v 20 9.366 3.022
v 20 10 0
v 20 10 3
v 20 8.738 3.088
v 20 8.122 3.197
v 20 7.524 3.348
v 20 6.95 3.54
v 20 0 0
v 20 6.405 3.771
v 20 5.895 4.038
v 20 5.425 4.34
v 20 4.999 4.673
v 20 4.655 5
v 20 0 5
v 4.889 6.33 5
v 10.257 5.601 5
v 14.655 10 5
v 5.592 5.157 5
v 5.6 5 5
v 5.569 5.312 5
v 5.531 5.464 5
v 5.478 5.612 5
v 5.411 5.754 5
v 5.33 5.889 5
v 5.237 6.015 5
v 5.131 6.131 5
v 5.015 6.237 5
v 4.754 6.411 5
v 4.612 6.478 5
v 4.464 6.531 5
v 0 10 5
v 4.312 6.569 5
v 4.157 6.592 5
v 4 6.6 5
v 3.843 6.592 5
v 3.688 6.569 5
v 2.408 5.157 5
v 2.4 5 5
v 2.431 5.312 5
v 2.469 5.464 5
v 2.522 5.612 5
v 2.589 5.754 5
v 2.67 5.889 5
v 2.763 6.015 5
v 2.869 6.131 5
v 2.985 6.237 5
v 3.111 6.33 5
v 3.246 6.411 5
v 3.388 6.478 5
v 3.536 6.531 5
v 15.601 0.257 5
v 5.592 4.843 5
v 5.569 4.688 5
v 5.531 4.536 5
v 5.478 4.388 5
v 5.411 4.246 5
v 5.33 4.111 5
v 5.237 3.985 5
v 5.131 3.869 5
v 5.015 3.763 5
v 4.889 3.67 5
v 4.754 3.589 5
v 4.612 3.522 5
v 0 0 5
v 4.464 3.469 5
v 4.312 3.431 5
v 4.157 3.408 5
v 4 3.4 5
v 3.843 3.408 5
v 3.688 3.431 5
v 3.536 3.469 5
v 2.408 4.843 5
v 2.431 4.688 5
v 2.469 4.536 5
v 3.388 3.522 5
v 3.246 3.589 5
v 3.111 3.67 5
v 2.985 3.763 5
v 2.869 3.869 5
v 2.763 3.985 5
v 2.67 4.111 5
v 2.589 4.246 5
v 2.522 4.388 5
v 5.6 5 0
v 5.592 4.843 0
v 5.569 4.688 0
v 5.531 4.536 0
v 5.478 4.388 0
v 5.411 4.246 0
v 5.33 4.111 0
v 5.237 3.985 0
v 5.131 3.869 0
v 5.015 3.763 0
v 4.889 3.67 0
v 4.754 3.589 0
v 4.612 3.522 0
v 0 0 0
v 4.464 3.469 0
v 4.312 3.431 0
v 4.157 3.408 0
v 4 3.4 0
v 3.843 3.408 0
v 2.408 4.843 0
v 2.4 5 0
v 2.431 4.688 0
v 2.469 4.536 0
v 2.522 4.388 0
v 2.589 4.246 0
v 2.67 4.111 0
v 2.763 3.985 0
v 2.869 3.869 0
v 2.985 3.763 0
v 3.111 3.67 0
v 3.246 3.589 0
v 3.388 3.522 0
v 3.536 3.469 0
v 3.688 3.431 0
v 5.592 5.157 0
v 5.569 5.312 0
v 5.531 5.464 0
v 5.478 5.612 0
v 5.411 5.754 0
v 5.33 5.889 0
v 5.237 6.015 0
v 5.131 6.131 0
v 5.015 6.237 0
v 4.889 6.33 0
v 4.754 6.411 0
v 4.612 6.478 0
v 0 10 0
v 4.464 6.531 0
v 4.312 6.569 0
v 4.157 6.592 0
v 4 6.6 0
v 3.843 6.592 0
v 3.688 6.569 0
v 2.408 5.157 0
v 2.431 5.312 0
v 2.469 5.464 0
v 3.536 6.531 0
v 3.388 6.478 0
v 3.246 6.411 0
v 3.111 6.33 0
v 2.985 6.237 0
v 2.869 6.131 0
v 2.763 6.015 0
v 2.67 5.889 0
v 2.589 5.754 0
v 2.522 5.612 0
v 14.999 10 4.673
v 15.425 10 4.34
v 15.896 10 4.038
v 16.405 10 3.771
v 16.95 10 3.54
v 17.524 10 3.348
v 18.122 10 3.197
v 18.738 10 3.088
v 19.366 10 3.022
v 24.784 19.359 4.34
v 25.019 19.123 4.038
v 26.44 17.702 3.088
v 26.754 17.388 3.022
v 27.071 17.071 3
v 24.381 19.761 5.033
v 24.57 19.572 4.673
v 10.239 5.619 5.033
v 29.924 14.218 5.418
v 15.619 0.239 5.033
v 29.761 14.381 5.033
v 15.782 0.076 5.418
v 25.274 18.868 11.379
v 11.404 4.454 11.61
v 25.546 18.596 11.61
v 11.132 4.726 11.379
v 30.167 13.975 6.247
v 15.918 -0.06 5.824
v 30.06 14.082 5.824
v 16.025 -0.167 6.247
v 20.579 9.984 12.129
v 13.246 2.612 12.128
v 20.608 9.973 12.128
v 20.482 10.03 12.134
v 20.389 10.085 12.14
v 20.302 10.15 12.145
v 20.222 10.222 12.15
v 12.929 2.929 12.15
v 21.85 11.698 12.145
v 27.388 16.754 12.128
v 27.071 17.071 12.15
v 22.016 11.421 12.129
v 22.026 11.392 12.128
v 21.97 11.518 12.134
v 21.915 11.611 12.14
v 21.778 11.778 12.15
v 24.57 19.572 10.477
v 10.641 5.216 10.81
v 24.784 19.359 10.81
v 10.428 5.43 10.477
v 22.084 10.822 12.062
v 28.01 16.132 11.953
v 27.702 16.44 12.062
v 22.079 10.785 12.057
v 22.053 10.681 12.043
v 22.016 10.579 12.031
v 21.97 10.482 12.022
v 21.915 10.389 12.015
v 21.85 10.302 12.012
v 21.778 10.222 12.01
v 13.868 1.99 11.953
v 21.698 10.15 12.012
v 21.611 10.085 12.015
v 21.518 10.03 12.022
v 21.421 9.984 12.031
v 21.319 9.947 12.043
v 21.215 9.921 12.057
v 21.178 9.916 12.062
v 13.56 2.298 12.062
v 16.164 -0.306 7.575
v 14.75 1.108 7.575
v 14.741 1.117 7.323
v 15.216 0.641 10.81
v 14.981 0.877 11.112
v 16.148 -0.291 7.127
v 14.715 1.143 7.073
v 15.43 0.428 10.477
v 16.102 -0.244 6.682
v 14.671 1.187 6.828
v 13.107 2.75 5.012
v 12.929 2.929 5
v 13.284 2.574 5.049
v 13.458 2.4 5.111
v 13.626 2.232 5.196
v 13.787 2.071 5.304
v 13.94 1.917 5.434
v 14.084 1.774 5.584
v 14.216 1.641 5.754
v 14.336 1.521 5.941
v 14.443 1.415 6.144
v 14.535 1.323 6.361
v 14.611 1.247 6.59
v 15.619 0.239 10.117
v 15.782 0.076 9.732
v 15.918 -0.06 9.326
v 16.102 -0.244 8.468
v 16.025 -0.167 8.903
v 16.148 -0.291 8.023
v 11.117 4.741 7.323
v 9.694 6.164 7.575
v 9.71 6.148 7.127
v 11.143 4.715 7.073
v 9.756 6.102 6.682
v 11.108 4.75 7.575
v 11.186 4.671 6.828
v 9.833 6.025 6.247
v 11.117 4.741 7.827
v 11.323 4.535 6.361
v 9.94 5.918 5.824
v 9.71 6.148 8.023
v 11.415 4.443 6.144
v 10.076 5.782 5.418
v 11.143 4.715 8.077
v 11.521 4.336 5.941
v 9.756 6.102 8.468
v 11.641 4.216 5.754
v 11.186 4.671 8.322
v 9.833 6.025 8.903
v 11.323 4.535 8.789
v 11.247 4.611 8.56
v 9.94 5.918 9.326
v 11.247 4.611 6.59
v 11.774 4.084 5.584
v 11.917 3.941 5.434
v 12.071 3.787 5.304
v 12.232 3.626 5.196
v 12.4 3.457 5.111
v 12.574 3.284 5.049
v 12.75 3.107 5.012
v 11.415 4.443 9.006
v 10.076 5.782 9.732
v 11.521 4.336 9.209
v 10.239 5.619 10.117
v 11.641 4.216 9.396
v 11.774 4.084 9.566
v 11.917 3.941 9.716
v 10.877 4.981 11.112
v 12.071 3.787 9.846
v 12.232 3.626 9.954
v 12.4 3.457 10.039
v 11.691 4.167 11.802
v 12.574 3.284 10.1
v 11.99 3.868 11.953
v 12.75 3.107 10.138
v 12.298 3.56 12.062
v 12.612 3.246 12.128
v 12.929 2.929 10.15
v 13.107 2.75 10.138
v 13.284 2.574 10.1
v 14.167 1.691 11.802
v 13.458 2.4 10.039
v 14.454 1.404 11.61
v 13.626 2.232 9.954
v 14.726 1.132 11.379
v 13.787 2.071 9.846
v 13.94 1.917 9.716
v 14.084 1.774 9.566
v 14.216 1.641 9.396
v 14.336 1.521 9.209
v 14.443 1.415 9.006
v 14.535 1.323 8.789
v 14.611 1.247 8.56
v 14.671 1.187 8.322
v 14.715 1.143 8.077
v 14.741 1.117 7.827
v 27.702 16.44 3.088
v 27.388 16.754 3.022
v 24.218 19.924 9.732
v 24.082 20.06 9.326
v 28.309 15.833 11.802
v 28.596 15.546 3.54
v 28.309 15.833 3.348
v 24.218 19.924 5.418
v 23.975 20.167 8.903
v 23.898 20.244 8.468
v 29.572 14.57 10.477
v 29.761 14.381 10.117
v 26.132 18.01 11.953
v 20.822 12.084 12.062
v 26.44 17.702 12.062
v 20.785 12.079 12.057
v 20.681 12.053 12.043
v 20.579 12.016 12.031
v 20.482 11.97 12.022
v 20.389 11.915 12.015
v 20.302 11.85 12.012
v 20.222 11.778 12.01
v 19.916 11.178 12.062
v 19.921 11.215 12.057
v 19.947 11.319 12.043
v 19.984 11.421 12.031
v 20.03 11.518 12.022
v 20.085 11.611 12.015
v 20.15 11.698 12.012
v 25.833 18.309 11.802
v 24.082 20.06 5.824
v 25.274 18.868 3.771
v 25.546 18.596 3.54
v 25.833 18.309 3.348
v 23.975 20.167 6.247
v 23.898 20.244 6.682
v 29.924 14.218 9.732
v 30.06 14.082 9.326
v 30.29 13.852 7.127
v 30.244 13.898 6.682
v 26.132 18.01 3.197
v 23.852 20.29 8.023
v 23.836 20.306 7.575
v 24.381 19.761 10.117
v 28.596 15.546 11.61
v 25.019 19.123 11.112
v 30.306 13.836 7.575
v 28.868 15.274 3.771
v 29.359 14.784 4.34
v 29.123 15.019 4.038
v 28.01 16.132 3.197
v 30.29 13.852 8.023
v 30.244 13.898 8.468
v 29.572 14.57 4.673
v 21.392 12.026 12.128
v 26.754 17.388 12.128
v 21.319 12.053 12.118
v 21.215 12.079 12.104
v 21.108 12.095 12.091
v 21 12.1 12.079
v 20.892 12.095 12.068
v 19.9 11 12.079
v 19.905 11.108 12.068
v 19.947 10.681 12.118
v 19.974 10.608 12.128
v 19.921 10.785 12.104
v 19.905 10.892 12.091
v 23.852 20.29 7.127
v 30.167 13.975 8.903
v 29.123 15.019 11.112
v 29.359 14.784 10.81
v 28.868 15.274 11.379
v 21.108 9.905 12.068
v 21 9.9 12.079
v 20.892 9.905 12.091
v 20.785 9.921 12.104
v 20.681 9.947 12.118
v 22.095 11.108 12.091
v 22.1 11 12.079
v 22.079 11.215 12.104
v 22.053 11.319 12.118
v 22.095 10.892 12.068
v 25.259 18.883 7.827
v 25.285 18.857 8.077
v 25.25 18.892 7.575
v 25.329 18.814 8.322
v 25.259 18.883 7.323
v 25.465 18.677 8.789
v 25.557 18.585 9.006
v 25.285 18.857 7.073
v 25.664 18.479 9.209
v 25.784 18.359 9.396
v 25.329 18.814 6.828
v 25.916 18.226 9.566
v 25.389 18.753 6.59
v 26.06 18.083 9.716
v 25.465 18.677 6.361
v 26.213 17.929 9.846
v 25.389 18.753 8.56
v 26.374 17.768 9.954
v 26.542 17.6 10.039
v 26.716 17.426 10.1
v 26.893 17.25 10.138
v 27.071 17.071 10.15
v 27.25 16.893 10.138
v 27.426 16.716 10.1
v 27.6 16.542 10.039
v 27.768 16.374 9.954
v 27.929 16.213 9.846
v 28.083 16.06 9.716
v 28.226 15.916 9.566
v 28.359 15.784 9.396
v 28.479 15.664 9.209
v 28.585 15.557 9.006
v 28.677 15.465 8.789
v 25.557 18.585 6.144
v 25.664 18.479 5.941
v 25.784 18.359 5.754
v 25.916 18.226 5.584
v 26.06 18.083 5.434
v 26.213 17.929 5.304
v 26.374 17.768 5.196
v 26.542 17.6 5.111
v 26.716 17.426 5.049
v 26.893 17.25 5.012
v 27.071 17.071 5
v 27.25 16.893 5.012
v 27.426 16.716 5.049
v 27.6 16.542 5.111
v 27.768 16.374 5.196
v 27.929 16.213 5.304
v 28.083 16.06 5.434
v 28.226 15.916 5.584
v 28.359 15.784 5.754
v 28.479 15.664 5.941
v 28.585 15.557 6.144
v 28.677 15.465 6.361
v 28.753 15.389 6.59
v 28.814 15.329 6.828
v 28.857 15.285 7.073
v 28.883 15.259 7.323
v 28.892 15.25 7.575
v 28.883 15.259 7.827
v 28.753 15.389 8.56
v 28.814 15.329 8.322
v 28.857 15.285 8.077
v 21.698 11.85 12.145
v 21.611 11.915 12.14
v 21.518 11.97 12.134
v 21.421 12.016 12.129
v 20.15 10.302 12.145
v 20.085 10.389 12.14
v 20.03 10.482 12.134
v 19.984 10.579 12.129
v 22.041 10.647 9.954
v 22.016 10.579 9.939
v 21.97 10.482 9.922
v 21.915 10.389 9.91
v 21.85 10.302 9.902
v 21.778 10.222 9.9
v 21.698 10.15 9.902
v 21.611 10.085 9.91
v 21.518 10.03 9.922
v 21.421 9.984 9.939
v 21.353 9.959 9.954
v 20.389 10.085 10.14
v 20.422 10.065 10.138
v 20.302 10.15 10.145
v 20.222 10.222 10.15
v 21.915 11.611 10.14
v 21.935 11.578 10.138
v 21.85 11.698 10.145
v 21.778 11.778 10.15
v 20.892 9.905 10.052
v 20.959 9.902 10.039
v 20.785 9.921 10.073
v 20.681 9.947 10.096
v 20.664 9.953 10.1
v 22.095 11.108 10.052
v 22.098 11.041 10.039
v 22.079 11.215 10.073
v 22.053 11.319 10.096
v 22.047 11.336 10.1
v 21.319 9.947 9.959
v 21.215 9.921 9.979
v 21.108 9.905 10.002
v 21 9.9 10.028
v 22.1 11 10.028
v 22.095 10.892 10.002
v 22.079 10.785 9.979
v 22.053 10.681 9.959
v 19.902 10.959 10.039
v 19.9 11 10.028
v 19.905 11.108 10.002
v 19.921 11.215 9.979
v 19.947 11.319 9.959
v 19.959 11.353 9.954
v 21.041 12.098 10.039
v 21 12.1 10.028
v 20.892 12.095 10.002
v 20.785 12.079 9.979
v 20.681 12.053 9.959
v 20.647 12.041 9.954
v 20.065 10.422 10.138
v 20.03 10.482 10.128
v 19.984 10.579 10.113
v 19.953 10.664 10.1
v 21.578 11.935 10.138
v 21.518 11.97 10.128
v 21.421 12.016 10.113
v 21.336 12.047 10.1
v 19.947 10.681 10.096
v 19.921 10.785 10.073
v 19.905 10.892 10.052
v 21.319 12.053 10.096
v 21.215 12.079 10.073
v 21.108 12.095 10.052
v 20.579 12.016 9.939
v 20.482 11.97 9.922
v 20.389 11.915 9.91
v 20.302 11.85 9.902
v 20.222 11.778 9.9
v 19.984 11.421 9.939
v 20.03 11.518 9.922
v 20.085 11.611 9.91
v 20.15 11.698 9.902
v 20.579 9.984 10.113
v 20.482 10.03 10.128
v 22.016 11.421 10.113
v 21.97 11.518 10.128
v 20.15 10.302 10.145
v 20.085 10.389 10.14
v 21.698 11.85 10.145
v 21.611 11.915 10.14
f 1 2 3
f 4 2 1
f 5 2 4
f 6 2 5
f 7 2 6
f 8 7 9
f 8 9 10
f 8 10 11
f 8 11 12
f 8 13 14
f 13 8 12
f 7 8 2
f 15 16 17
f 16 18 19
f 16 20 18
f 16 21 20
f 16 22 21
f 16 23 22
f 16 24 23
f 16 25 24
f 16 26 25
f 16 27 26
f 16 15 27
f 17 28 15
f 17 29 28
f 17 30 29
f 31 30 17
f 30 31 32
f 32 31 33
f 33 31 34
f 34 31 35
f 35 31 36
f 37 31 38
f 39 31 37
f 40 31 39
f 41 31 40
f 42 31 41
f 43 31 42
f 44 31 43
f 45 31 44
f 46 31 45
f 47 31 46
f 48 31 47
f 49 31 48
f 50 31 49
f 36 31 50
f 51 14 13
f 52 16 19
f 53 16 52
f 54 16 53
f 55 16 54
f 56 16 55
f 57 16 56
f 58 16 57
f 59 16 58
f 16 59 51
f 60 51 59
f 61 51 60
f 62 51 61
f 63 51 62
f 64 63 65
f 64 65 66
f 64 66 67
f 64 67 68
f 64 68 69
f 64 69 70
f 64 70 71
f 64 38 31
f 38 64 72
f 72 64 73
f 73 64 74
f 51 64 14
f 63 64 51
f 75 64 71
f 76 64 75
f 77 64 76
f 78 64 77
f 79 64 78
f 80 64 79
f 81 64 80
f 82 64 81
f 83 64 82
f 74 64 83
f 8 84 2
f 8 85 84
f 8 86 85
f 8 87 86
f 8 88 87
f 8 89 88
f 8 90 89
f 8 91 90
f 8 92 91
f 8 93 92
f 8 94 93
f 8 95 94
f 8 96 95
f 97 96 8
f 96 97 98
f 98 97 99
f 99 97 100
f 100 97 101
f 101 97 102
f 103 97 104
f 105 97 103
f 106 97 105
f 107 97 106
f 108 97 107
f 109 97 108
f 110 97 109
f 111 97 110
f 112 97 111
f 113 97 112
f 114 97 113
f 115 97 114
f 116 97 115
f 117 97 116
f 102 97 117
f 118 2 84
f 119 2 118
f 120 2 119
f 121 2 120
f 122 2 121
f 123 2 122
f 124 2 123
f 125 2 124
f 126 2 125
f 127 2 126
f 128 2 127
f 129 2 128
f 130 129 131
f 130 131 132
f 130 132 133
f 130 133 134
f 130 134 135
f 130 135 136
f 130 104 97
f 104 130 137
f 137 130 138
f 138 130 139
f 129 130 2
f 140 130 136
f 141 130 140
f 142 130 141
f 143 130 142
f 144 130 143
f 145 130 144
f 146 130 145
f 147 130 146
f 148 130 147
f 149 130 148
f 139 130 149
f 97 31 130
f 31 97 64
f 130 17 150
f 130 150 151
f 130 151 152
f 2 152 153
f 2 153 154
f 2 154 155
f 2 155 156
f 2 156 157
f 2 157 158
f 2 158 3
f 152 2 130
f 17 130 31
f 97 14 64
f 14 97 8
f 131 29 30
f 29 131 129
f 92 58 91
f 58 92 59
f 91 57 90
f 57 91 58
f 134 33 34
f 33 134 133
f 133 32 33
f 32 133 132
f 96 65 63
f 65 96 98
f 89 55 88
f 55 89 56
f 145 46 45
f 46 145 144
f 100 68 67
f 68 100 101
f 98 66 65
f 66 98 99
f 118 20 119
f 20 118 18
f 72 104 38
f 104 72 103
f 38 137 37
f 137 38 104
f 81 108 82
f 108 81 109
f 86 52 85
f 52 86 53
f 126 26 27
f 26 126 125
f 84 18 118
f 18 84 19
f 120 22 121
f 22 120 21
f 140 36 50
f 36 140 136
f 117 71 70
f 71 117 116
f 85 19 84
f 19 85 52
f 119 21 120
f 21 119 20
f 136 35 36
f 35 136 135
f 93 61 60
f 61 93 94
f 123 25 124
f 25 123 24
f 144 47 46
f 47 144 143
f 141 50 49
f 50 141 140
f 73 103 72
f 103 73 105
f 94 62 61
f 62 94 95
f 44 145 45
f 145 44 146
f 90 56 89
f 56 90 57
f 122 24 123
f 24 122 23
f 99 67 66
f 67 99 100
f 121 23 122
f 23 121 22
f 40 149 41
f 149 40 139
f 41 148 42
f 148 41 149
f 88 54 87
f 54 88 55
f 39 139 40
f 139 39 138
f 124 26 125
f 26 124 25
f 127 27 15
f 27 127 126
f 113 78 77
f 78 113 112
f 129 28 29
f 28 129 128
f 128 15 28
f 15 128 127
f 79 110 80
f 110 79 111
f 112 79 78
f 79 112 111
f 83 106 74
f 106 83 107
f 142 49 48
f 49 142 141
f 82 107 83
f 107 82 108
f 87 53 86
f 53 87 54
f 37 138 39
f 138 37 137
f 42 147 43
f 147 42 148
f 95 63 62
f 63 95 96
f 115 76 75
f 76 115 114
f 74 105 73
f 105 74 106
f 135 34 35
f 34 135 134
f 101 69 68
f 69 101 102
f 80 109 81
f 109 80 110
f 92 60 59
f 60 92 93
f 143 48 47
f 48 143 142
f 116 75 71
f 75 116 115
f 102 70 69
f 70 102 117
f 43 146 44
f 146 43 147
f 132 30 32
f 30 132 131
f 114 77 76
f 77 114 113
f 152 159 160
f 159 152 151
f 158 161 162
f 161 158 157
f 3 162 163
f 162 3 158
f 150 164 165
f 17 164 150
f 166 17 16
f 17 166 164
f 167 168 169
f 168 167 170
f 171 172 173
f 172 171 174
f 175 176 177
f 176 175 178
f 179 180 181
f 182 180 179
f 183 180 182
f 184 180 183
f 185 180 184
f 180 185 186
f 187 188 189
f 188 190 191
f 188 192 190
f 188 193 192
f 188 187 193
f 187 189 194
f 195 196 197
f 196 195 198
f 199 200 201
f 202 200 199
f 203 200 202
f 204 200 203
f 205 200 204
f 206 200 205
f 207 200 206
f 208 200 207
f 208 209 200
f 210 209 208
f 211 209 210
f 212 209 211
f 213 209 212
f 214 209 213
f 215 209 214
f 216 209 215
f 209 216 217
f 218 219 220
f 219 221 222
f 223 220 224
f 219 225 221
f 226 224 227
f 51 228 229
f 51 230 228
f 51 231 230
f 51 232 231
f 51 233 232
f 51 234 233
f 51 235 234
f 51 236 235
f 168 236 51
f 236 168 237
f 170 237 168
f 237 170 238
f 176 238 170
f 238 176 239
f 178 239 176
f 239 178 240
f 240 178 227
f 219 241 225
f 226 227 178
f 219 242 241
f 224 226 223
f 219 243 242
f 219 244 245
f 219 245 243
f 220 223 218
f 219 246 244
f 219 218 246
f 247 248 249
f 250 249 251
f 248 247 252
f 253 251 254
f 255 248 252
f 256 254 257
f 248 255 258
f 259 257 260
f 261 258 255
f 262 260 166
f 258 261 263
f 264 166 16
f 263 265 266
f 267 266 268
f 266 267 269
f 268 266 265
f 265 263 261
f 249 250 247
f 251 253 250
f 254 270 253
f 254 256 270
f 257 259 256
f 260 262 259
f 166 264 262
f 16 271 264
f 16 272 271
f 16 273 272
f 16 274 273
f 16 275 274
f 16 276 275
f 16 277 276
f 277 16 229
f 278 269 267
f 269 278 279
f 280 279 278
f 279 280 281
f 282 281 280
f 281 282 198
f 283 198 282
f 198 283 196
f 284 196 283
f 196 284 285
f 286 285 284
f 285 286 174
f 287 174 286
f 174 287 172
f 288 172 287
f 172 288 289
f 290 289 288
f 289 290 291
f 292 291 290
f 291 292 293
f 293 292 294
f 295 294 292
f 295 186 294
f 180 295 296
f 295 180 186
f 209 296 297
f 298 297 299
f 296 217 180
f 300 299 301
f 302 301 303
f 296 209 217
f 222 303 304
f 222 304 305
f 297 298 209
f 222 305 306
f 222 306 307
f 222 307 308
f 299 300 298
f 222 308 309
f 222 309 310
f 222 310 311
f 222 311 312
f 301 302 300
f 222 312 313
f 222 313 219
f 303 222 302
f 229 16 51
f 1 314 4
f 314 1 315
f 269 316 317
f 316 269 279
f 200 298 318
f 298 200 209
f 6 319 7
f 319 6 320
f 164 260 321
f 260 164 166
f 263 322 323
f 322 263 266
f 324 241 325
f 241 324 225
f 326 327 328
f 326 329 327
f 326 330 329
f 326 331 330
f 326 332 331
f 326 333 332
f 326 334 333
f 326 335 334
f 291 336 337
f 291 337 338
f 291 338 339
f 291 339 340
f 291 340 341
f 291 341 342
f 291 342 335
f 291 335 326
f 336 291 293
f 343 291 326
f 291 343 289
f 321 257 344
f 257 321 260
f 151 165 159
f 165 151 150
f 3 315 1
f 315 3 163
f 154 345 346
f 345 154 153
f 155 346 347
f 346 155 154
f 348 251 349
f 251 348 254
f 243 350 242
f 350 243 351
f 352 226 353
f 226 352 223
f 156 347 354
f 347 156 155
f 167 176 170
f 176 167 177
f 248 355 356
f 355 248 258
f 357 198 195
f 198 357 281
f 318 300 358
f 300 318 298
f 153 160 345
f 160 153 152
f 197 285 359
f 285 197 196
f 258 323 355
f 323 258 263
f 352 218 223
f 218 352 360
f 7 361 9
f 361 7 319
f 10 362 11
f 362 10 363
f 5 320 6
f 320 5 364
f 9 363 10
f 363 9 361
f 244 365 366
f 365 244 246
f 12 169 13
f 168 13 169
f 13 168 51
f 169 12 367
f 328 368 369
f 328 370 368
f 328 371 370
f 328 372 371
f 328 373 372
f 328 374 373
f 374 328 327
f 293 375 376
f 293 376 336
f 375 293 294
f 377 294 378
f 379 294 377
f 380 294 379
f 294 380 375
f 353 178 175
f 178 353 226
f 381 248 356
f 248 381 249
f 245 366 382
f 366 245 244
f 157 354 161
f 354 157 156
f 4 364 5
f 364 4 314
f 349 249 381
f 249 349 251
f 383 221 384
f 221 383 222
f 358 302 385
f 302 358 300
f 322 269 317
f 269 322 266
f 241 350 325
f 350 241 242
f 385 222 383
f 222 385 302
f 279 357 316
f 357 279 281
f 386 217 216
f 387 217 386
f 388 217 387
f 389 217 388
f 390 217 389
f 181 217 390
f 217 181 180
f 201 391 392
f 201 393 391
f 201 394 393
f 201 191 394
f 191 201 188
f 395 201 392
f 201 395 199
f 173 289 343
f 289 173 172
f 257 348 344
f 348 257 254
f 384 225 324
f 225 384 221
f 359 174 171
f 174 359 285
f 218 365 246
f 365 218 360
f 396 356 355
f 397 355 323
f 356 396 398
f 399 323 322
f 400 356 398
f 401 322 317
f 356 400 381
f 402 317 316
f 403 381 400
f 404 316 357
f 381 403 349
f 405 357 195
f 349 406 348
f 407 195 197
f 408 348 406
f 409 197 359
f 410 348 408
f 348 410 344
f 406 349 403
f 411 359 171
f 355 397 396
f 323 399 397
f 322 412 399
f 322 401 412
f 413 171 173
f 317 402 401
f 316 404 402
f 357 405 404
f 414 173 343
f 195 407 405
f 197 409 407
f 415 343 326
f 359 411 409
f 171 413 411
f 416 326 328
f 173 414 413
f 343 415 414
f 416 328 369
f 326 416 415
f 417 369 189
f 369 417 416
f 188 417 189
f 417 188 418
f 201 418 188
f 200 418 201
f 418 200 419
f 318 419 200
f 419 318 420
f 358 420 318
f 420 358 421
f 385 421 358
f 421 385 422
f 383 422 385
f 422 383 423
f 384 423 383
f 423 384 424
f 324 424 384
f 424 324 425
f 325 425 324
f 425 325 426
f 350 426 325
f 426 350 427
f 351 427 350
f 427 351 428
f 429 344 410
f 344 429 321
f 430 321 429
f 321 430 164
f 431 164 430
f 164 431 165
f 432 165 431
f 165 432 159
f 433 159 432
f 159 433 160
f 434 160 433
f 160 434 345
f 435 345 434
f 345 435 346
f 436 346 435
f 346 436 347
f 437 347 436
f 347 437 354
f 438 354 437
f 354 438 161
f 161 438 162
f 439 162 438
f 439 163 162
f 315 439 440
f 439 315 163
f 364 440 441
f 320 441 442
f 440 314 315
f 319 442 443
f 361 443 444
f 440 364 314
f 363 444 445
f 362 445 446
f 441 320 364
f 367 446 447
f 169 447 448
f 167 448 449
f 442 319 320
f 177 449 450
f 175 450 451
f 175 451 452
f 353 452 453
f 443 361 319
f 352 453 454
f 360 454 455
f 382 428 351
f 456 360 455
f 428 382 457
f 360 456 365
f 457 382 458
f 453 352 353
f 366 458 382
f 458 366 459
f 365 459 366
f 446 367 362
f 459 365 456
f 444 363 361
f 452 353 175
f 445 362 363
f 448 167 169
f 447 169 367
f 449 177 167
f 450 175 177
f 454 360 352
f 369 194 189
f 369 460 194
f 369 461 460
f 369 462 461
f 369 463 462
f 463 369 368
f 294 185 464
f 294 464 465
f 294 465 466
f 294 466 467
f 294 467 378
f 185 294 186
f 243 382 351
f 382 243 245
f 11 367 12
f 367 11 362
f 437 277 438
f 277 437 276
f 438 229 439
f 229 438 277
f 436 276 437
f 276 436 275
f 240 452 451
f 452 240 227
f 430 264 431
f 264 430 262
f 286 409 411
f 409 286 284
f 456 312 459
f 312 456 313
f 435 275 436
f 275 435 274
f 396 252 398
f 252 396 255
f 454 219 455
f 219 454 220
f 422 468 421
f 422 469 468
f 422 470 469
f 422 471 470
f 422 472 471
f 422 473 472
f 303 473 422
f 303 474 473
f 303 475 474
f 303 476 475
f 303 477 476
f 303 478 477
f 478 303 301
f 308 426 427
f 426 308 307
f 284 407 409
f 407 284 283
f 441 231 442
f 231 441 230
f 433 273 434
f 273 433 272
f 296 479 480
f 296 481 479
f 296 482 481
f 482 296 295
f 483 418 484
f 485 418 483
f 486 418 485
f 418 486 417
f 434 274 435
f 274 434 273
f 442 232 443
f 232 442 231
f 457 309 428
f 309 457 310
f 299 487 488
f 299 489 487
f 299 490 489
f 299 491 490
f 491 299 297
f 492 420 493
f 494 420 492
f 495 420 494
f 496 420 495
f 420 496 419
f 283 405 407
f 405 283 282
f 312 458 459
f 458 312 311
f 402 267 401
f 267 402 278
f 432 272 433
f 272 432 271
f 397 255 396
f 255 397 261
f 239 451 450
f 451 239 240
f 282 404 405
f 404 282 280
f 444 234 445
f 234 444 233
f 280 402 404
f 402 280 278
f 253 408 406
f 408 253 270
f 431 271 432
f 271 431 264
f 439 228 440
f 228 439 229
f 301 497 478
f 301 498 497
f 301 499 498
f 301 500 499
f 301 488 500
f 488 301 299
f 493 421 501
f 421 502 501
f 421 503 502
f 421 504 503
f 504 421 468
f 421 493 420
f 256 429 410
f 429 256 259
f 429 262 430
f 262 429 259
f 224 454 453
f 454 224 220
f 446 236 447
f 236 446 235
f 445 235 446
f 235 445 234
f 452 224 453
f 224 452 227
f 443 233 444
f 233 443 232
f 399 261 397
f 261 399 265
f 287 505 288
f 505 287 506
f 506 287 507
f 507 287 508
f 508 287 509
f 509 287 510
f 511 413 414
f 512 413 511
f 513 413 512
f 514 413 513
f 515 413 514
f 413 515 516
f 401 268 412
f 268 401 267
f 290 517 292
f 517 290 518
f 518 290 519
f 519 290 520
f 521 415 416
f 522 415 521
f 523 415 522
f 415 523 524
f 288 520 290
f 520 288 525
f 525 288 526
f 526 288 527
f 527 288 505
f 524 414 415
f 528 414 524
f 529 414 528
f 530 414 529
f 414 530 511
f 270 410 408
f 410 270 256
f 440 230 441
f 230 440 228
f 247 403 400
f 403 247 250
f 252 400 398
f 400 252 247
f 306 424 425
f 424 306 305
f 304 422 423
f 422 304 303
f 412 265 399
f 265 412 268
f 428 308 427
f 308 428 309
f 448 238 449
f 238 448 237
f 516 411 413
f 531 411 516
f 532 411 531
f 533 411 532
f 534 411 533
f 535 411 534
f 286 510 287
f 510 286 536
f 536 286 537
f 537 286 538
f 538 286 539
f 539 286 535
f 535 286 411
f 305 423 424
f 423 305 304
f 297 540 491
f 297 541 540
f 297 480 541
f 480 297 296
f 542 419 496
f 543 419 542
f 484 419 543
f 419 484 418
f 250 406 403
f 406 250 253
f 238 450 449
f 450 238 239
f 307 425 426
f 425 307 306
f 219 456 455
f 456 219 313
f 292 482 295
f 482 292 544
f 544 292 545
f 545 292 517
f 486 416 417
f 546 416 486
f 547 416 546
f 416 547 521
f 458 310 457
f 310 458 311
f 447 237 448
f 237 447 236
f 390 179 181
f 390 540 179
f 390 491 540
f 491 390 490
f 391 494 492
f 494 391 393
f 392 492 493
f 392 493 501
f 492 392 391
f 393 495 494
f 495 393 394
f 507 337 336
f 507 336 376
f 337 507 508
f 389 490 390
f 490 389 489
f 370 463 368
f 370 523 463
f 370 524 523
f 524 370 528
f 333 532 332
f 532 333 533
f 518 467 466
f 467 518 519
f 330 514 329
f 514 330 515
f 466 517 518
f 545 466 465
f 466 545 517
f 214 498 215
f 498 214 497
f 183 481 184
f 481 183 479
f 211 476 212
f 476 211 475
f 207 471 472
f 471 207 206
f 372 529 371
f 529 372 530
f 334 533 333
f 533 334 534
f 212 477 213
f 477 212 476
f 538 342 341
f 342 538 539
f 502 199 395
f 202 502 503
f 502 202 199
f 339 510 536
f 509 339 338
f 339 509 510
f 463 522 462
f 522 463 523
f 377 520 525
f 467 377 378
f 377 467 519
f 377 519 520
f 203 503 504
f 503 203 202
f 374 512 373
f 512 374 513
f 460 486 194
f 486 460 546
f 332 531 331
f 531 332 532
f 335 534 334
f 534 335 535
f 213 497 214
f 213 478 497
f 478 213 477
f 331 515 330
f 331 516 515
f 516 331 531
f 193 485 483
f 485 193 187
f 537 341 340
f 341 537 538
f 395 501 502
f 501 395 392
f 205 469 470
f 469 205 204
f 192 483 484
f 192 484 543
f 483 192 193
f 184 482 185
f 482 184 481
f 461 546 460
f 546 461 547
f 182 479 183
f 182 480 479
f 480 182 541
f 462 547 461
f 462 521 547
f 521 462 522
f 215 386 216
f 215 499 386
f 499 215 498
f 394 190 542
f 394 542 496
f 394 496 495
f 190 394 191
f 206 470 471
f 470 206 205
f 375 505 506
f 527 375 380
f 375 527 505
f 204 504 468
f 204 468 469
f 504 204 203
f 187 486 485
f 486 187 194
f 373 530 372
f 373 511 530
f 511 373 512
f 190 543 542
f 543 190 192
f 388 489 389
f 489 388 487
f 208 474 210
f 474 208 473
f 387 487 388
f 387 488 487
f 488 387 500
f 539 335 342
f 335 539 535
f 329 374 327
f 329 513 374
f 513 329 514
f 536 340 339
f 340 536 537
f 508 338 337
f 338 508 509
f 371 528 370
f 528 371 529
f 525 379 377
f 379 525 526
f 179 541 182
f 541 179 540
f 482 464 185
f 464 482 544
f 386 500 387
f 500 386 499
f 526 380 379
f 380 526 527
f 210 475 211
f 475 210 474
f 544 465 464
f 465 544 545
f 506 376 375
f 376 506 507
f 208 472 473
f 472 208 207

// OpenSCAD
// Plate with two tube sockets aimed toward rectangle corners, slightly recessed into the plate (for 5 mm CF tubes) and an M2 hole in the base
// All units in mm

// --- Plate ---
length = 20; // X (mm)
width  = 10; // Y (mm)
thick  = 5;  // Z (mm)

// --- Tube/socket params ---
tube_id        = 5;      // carbon fiber tube outer diameter
clearance      = 0.15;  // fit clearance for insertion
socket_wall    = 2;      // wall thickness around the tube
socket_len     = 20;     // length of each socket along its axis
recess_depth   = 2;      // how far sockets sit inside the plate

// --- Hole params ---
m2_diameter      = 3.2;   // base-plate hole diameter (~2.2 for true M2 clearance)
m2_top_diameter  = 2.2;   // true M2 clearance for the vertical hole at socket top
screw_depth      = socket_wall + 1.2; // how deep the top hole goes down from socket top (tweak as needed)

// --- Quality settings ---
$fn = 64; // ensure circles are smooth

socket_id = tube_id + clearance;      // inner diameter of socket
socket_od = socket_id + 2*socket_wall; // outer diameter
r_out     = socket_od/2;
r_in      = socket_id/2;

module plate() {
  difference() {
    cube([length, width, thick], center=false);
    // M2 hole at center of plate (offset 5 mm from geometric center in X per your original)
    translate([length/2-6, width/2, 0])
      cylinder(d=m2_diameter, h=thick+0.1, center=false);
  }
}

// Generic horizontal socket pointing at an in‑plane angle (deg) relative to +X
// Centered at (xpos, ypos); partially recessed into the plate
module socket_dir(angle_deg, len, xpos, ypos) {
  translate([xpos, ypos, thick + r_out - recess_depth])
    rotate([0,0,angle_deg])       // rotate around Z to desired heading in XY
      rotate([0,90,0])            // lay cylinder horizontal (axis along +X before Z-rot)
        difference() {
          cylinder(h=len, r=r_out, center=true);
          cylinder(h=len+0.2, r=r_in, center=true);
        }
}

// Vertical M2 hole drilled from the very top of the socket downward by screw_depth
// Place at the same (xpos, ypos) used for the socket.
module socket_top_hole(xpos, ypos) {
  // Top of socket in world Z is: (socket center Z) + r_out
  // socket center Z = thick + r_out - recess_depth
  z_top = thick + 2*r_out - recess_depth;
  translate([xpos, ypos, z_top - screw_depth])
    cylinder(d=m2_top_diameter, h=screw_depth + 0.2, center=false);
}

// --- Tube headings (exactly 90° apart) ---
//ang_A = atan2(width,  length-5); // base direction
//ang_B = ang_A + 90;              // exactly perpendicular to ang_A
ang_A = 45;
ang_B = -45;
// --- Placement ---
plate_centre = [length/2+7, width/2];

// Socket XY positions (match the ones used below so we can reuse for the holes)
sock1_pos = [plate_centre[0]+3, plate_centre[1]+5];
sock2_pos = [plate_centre[0]+3, plate_centre[1]-5];

difference() {
  // 1) Build plate + sockets
  union() {
    plate();
    socket_dir(ang_A, socket_len, sock1_pos[0], sock1_pos[1]);
    //socket_dir(ang_B, socket_len, sock2_pos[0], sock2_pos[1]);
  }

  // 2) Subtract vertical M2 holes "on top" of each socket
  socket_top_hole(sock1_pos[0]+1, sock1_pos[1]+1);
  socket_top_hole(sock2_pos[0]+1, sock2_pos[1]-1);
}

// Notes:
// - Increase `screw_depth` if you want the screw to reach the tube ID further.
//   It only needs to pass the outer wall (≈ socket_wall) to bite the tube.
// - If you want a threaded boss, keep this hole at 1.6–1.7 mm and tap it;
//   otherwise 2.2 mm is good for free clearance.
// - To move the holes with the sockets, only adjust sock1_pos / sock2_pos once.
